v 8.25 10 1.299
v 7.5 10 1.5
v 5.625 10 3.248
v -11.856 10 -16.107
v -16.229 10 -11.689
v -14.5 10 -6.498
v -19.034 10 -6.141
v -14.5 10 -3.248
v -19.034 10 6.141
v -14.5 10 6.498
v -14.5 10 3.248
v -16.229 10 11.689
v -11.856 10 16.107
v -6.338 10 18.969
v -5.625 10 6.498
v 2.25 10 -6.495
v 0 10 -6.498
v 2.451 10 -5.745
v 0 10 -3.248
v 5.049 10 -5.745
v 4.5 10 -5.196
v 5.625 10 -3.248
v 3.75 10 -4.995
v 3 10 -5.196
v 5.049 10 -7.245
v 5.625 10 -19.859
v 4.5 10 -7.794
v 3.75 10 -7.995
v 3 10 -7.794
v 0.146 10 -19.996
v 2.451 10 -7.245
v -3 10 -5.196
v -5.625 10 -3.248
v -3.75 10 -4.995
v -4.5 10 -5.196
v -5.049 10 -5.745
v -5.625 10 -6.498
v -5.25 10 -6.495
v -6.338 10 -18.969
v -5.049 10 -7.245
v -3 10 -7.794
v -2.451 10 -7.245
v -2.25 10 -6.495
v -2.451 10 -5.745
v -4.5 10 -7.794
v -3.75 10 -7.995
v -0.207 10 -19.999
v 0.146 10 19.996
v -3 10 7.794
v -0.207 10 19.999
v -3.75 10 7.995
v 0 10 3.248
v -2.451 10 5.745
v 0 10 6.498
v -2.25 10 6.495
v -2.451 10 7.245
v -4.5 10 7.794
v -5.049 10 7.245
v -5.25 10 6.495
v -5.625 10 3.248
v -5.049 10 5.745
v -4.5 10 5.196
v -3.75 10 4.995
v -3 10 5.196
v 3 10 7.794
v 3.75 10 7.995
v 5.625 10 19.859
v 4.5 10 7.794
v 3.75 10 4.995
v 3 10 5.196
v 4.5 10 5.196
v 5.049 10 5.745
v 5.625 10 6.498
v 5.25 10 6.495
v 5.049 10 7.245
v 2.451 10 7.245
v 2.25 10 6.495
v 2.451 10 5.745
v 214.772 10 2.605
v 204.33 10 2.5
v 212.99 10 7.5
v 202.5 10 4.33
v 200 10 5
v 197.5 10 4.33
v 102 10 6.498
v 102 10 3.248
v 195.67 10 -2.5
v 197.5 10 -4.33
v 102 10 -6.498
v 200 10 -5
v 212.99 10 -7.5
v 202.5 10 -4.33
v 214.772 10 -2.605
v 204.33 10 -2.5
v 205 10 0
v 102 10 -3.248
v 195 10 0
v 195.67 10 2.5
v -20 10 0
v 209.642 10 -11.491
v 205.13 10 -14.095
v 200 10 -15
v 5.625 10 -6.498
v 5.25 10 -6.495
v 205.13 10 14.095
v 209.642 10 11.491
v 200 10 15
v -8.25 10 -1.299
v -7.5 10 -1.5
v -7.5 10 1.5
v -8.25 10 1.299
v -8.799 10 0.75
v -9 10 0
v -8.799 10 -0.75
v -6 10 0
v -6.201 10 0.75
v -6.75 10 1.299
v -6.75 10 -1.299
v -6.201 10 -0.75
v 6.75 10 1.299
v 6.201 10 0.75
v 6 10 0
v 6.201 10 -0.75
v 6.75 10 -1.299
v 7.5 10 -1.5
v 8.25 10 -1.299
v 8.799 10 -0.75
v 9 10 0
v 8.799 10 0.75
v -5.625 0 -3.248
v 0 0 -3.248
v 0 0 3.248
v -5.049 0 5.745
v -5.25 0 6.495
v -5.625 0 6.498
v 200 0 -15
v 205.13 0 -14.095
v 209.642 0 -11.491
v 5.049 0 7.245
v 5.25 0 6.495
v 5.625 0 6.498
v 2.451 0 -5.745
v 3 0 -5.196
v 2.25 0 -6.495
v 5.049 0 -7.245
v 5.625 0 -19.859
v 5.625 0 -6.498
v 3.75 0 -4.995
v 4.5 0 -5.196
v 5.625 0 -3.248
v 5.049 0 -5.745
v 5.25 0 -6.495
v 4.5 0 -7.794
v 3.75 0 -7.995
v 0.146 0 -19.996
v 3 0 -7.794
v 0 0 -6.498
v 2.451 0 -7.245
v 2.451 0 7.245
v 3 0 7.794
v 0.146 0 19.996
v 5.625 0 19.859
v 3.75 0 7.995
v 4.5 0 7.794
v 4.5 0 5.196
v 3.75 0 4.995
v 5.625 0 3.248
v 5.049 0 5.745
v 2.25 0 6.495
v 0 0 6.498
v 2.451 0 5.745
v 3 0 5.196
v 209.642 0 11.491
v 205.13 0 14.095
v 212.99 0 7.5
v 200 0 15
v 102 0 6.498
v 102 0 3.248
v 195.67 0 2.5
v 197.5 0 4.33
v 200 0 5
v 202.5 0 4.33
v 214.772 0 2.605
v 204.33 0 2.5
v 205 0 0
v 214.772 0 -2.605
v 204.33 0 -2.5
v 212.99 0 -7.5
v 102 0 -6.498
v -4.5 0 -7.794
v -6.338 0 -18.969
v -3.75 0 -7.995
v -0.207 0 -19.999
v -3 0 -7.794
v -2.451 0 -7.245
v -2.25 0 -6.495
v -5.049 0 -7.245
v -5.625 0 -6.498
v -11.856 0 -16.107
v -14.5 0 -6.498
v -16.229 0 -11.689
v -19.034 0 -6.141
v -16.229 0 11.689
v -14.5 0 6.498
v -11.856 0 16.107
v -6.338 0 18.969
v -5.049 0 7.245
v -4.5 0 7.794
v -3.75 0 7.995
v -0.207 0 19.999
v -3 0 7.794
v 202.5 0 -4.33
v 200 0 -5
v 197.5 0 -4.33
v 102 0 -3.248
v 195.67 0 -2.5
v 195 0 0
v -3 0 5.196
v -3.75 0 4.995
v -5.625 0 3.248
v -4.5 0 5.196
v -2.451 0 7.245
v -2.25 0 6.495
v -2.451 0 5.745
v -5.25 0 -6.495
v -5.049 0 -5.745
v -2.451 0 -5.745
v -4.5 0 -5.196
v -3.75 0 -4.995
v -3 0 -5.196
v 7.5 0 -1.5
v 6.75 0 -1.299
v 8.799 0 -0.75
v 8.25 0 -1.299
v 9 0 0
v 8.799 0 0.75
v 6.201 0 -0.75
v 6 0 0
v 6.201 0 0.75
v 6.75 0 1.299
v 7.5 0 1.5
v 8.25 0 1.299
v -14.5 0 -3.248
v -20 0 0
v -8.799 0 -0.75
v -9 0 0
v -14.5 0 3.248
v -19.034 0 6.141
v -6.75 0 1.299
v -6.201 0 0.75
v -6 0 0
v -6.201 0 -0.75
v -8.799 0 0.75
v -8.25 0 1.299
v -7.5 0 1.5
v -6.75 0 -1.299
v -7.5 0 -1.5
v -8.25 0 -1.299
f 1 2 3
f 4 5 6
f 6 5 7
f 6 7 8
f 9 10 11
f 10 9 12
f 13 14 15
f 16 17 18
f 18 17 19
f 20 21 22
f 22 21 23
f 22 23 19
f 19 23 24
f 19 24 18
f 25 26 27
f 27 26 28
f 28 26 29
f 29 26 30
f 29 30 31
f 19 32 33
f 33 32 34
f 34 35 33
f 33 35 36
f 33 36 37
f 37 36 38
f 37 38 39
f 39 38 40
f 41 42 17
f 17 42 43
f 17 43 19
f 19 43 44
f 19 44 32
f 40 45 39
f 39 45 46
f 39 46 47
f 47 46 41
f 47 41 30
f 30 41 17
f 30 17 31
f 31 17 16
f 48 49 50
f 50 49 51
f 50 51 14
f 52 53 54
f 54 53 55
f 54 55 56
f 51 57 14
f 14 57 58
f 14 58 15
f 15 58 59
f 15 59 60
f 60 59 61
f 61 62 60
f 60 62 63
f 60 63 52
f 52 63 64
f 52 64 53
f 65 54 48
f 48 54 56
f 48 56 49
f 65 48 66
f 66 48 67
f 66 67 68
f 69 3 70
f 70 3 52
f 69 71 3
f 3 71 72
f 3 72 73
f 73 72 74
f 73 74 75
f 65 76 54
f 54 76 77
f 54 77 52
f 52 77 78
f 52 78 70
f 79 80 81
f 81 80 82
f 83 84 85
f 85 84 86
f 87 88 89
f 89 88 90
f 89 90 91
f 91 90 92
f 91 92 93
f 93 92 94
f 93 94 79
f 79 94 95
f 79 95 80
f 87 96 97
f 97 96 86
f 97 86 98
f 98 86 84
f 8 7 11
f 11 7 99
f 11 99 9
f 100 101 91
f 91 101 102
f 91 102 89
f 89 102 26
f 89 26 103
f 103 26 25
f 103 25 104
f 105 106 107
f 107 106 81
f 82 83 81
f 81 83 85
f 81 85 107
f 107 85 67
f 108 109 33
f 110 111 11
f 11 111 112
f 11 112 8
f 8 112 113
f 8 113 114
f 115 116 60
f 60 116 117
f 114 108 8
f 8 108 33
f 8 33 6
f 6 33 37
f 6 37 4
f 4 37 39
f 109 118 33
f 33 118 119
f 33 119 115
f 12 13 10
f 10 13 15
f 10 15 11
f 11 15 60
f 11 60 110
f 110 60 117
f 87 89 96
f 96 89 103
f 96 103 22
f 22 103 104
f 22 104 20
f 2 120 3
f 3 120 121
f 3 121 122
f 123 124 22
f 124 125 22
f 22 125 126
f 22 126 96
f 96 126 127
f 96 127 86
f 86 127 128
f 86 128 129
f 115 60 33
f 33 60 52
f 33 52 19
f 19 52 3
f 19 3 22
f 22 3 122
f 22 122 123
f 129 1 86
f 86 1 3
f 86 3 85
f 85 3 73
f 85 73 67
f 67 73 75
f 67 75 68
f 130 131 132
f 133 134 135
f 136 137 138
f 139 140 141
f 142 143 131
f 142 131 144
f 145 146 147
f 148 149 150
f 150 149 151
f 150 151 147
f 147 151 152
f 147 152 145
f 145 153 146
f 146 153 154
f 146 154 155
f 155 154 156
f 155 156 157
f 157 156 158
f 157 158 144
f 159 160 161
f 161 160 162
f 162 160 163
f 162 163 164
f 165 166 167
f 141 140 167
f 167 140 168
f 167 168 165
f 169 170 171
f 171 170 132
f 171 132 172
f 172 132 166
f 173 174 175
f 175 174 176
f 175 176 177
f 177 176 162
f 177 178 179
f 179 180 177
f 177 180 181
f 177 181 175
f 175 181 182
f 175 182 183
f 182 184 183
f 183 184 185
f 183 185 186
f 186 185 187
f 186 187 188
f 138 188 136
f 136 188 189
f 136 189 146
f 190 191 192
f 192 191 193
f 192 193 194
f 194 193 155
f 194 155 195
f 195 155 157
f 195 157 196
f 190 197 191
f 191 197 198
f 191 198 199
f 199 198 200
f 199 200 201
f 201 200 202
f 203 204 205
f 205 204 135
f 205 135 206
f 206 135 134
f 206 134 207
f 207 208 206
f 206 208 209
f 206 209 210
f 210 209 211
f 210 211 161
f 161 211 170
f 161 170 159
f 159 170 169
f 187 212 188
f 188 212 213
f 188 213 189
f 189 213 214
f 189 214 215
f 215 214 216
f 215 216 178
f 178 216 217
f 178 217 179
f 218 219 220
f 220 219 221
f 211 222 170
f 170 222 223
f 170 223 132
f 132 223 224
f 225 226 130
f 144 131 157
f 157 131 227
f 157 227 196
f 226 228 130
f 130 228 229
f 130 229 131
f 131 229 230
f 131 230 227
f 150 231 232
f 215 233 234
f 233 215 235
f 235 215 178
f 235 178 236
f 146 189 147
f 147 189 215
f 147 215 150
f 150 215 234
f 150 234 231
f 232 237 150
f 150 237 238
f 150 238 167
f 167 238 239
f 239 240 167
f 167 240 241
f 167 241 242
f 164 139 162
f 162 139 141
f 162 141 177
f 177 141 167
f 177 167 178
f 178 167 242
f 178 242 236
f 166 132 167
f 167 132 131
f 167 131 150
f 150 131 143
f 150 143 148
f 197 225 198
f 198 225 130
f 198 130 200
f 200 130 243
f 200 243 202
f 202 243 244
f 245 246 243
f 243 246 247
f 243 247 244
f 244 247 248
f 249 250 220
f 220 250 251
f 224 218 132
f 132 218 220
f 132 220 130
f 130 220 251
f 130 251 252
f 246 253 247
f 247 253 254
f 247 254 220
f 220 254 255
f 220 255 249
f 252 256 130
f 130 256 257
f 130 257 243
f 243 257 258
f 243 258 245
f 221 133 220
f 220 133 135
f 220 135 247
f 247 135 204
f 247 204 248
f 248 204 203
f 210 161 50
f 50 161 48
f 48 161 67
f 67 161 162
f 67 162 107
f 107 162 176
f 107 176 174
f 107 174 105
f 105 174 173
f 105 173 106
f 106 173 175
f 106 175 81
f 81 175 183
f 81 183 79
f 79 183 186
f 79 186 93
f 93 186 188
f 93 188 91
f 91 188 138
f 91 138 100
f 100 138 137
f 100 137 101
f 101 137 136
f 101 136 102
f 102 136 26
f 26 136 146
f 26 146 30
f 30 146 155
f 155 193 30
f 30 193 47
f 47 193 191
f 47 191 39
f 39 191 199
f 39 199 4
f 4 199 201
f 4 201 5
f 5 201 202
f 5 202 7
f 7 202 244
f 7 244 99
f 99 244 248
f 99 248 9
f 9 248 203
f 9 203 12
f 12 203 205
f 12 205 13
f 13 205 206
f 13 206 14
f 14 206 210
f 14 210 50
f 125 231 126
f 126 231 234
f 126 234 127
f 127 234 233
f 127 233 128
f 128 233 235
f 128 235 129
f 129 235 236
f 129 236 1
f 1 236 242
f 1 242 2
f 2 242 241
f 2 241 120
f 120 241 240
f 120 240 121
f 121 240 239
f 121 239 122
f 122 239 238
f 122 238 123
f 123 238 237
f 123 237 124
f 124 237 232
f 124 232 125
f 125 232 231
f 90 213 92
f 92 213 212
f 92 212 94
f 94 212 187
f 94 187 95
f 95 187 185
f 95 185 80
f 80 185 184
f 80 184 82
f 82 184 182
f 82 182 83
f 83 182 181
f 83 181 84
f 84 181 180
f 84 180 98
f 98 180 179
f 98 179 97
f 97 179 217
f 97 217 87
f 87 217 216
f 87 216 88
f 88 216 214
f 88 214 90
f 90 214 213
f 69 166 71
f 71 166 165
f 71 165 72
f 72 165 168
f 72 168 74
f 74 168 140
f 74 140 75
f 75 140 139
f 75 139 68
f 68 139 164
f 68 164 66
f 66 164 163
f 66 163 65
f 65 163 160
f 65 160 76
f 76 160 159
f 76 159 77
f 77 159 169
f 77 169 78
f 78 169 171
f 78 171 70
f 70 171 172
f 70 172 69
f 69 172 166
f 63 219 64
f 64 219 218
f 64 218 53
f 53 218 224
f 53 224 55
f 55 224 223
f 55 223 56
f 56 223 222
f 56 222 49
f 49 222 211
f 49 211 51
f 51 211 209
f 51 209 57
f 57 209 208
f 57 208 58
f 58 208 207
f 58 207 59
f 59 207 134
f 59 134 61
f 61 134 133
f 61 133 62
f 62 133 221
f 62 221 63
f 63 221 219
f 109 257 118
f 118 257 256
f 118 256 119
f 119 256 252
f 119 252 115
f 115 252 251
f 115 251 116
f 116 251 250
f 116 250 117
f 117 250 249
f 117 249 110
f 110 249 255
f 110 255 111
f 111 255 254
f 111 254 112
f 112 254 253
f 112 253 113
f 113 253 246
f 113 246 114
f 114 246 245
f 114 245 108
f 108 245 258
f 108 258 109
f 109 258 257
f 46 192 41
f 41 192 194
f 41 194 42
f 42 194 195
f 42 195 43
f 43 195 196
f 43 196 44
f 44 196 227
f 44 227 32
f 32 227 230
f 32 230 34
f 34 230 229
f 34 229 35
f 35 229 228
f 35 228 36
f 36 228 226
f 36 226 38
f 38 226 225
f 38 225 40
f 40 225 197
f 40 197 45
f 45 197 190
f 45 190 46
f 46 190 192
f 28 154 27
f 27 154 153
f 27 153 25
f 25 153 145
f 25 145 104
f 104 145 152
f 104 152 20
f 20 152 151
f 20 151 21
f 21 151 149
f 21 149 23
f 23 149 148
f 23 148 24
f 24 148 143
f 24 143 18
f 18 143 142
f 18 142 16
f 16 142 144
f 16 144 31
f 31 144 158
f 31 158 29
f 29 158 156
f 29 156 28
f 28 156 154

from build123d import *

# Parameters (mm, degrees)
CROQUIS1_R              = 1.5
CROQUIS1_R_2            = 5
SALIENTE_EXTRUIR1_DEPTH = 10


with BuildPart() as part:
    # Croquis1 → Saliente-Extruir1 (new body)
    with BuildSketch(Plane(origin=(0, 0, 0), x_dir=(1, 0, 0), z_dir=(0, 1, 0))):
        with BuildLine():
            Line((0.146382734, 19.996340432), (200, 15))
            ThreePointArc((200, 15), (215, 0), (200, -15))
            Line((200, -15), (0.146382734, -19.996340432))
            ThreePointArc((0.146382734, -19.996340432), (-0.030336377, -19.999196031), (-0.207078355, -19.998927935))
            ThreePointArc((-0.207078355, -19.998927935), (-20, 0), (-0.207078355, 19.998927935))
            ThreePointArc((-0.207078355, 19.998927935), (-0.030336377, 19.999196031), (0.146382734, 19.996340432))
        make_face()
        with Locations(Location((7.5, 0, 0), (0, 0, 270))):
            Circle(CROQUIS1_R, mode=Mode.SUBTRACT)
        with Locations(Location((3.75, -6.495190528, 0), (0, 0, 270))):
            Circle(CROQUIS1_R, mode=Mode.SUBTRACT)
        with Locations(Location((-3.75, -6.495190528, 0), (0, 0, 270))):
            Circle(CROQUIS1_R, mode=Mode.SUBTRACT)
        with Locations(Location((-7.5, 0, 0), (0, 0, 270))):
            Circle(CROQUIS1_R, mode=Mode.SUBTRACT)
        with Locations(Location((-3.75, 6.495190528, 0), (0, 0, 270))):
            Circle(CROQUIS1_R, mode=Mode.SUBTRACT)
        with Locations(Location((3.75, 6.495190528, 0), (0, 0, 270))):
            Circle(CROQUIS1_R, mode=Mode.SUBTRACT)
        with Locations(Location((200, 0, 0), (0, 0, 270))):
            Circle(CROQUIS1_R_2, mode=Mode.SUBTRACT)
    extrude(amount=SALIENTE_EXTRUIR1_DEPTH)


solid = part.part
